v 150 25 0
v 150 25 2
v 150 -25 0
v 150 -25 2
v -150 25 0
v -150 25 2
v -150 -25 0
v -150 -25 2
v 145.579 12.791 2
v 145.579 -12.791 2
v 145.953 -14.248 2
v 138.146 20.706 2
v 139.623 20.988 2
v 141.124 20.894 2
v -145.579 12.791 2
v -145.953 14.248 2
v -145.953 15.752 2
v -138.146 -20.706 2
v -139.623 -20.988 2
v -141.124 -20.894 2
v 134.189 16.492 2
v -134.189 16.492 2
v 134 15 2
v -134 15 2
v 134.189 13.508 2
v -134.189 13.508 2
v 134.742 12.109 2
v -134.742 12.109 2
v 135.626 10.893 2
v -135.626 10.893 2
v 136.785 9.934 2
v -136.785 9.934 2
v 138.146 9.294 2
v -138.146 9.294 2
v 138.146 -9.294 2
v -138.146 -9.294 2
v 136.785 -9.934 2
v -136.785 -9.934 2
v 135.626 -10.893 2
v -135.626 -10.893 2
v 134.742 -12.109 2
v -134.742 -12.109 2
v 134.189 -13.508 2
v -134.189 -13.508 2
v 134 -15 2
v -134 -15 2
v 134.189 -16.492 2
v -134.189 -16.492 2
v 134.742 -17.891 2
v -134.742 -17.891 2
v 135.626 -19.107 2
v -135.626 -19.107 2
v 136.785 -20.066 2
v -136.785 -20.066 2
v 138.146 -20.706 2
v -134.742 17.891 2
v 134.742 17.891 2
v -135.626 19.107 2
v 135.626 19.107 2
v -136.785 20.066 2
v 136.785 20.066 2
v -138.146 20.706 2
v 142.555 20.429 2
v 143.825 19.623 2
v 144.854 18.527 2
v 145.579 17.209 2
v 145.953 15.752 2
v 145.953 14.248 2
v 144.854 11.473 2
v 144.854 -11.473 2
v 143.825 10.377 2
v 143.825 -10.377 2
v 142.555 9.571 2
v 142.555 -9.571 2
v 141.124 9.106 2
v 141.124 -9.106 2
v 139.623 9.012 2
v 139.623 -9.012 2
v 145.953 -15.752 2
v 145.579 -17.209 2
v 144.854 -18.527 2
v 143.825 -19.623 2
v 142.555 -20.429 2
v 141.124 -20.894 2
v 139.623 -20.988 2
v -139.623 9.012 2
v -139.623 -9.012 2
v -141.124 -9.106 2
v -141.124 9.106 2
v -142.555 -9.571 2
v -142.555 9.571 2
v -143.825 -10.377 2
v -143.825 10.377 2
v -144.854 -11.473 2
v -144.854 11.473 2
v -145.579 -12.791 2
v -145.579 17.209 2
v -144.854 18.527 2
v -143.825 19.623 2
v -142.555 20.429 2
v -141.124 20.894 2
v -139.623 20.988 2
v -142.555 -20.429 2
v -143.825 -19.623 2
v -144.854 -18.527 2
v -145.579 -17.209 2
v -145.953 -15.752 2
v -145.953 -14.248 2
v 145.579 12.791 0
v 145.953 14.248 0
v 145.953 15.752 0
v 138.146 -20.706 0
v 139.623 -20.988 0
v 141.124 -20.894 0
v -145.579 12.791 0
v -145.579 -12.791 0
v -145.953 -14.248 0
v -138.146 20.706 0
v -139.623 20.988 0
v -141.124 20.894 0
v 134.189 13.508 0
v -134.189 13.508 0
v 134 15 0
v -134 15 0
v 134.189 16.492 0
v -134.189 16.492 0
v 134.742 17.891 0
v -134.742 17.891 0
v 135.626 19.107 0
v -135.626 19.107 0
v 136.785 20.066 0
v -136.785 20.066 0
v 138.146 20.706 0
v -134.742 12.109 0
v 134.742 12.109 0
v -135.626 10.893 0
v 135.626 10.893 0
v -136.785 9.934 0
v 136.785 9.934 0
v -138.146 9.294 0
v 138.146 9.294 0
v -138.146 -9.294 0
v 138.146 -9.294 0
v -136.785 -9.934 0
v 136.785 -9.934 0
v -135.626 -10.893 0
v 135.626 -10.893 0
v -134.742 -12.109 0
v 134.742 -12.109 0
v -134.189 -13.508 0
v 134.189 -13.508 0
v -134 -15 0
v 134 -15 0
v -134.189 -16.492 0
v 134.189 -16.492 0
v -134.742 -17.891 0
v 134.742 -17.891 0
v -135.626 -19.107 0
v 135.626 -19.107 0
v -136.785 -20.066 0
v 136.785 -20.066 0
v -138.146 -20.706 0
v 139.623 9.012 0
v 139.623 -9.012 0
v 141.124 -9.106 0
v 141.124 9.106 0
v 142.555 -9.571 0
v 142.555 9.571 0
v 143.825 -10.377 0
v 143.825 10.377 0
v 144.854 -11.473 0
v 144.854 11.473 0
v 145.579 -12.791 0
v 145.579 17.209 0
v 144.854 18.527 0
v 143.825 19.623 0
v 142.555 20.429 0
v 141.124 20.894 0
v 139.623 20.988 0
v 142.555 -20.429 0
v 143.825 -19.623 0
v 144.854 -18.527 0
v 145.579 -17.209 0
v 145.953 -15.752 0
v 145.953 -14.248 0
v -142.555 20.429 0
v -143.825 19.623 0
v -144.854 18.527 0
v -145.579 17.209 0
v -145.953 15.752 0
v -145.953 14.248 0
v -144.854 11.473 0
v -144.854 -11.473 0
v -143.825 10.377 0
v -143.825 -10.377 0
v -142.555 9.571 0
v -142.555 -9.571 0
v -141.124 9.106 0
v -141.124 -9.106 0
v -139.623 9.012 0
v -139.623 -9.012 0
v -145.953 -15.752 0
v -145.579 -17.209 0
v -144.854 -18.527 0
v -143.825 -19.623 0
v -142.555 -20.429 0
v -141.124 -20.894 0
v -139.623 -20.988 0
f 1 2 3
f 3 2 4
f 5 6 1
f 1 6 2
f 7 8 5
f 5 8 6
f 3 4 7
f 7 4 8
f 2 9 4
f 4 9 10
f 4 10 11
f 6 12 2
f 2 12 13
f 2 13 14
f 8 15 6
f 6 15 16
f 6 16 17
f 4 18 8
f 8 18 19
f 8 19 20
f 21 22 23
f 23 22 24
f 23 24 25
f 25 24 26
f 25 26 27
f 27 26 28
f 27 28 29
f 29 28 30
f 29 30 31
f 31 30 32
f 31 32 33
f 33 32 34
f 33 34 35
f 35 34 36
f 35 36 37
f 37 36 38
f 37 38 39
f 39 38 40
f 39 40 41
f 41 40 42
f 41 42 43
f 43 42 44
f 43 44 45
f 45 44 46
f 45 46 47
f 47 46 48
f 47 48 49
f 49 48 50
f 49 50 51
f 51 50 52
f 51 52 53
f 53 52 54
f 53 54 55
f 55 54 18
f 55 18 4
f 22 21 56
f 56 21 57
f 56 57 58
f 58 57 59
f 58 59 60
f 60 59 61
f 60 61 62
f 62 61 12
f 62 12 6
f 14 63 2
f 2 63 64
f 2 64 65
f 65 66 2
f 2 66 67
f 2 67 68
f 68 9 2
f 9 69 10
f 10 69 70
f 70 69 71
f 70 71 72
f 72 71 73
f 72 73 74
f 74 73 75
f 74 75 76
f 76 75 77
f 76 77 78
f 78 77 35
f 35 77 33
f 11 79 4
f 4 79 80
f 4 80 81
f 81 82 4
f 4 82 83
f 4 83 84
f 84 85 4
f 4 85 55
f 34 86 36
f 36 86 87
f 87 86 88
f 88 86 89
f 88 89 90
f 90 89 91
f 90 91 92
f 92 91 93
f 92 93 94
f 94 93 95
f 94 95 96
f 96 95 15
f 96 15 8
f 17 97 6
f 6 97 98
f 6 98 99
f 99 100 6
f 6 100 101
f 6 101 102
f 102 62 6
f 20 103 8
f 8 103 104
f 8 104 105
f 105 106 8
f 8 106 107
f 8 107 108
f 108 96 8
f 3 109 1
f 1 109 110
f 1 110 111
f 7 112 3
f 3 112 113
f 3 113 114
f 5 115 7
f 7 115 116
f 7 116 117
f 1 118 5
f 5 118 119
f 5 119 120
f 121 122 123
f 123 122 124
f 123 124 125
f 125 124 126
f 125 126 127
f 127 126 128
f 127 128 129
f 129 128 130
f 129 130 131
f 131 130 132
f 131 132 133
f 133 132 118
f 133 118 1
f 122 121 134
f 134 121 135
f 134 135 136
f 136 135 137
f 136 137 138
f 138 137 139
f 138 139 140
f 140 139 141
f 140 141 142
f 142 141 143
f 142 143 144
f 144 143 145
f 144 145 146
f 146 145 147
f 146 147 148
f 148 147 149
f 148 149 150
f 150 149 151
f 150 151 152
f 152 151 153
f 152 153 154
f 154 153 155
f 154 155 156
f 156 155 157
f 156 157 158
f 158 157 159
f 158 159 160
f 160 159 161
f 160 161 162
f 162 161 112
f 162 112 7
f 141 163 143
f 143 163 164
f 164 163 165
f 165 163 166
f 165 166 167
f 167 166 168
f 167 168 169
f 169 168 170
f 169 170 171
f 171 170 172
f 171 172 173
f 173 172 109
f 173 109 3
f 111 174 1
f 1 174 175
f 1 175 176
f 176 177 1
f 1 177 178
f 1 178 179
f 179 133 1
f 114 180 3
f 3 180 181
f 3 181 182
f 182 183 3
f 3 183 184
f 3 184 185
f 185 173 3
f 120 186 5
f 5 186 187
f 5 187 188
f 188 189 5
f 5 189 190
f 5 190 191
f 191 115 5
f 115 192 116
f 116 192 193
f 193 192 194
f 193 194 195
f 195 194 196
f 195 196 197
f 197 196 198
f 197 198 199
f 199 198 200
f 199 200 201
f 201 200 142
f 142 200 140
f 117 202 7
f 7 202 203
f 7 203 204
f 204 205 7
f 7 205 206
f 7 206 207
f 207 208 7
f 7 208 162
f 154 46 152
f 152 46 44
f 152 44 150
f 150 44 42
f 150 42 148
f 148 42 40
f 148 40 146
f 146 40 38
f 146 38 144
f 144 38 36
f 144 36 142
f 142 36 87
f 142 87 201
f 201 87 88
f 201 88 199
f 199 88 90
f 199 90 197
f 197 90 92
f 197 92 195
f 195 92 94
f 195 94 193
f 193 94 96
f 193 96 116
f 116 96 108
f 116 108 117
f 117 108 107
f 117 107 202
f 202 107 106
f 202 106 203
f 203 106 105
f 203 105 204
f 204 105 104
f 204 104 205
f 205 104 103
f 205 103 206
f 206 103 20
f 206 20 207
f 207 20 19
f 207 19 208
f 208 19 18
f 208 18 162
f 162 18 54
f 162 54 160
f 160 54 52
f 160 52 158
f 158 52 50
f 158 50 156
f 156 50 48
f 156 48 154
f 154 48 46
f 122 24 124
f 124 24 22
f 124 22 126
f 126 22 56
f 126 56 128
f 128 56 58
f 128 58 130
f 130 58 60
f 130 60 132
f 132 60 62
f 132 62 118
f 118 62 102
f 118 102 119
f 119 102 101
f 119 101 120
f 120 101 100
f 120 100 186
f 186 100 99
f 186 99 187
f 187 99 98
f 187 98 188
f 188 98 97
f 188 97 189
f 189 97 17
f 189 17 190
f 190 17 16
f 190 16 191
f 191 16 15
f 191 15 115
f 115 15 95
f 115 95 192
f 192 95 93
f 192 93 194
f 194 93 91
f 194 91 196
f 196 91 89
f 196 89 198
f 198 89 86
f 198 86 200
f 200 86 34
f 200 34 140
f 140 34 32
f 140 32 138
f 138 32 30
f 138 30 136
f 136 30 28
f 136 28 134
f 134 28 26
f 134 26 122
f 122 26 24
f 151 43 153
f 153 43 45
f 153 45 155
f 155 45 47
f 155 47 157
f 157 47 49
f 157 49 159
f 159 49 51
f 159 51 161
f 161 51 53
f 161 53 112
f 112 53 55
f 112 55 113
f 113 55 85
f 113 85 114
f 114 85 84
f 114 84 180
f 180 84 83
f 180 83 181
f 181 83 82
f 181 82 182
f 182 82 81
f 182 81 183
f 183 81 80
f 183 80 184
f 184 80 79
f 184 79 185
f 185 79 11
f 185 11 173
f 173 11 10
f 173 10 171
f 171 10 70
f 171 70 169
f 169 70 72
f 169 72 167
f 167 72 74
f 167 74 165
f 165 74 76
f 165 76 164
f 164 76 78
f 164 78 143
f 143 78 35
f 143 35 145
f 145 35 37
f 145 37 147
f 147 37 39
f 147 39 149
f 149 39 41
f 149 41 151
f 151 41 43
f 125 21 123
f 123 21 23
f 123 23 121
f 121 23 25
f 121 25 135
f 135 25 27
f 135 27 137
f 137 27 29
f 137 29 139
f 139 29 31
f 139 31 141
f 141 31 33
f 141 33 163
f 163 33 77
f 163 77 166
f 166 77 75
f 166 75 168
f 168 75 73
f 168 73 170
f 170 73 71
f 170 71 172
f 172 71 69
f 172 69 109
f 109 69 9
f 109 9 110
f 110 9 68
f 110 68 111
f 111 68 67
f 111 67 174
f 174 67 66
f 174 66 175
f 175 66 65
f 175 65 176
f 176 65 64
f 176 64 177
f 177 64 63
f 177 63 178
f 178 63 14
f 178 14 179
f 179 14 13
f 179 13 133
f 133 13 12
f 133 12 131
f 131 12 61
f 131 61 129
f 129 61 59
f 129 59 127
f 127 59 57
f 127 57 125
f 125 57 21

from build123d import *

# Parameters (mm, degrees)
CROQUIS1_W                = 300
CROQUIS1_H                = 50
SALIENTE_EXTRUIR1_DEPTH   = 2
CROQUIS2_R                = 6
CORTAR_EXTRUIR1_DEPTH     = 153.082214608
SIMETR_A2_COPY_1_SKETCH_R = 6
SIMETR_A2_COPY_1_DEPTH    = 153.082214608


with BuildPart() as part:
    # Croquis1 → Saliente-Extruir1 (new body)
    with BuildSketch(Plane.XY):
        Rectangle(CROQUIS1_W, CROQUIS1_H)
    extrude(amount=SALIENTE_EXTRUIR1_DEPTH)

    # Croquis2 → Cortar-Extruir1 (cut, through all)
    with BuildSketch(Plane.XY.offset(2)):
        with Locations((-140, -15)):
            Circle(CROQUIS2_R)
    cortar_extruir1 = extrude(amount=-CORTAR_EXTRUIR1_DEPTH, mode=Mode.SUBTRACT)

    # Simetría1: Cortar-Extruir1 across plane
    add(cortar_extruir1.mirror(Plane.ZX), mode=Mode.SUBTRACT)

    # Simetría2: Cortar-Extruir1 across plane
    add(cortar_extruir1.mirror(Plane(origin=(0, 0, 0), x_dir=(0, 0, 1), z_dir=(1, 0, 0))), mode=Mode.SUBTRACT)

    # Simetría2 copy 1 sketch → Simetría2 copy 1 (cut, through all)
    with BuildSketch(Plane(origin=(0, 0, 2), x_dir=(-1, 0, 0), z_dir=(0, 0, 1))):
        with Locations((-140, -15)):
            Circle(SIMETR_A2_COPY_1_SKETCH_R)
    extrude(amount=-SIMETR_A2_COPY_1_DEPTH, mode=Mode.SUBTRACT)


solid = part.part
